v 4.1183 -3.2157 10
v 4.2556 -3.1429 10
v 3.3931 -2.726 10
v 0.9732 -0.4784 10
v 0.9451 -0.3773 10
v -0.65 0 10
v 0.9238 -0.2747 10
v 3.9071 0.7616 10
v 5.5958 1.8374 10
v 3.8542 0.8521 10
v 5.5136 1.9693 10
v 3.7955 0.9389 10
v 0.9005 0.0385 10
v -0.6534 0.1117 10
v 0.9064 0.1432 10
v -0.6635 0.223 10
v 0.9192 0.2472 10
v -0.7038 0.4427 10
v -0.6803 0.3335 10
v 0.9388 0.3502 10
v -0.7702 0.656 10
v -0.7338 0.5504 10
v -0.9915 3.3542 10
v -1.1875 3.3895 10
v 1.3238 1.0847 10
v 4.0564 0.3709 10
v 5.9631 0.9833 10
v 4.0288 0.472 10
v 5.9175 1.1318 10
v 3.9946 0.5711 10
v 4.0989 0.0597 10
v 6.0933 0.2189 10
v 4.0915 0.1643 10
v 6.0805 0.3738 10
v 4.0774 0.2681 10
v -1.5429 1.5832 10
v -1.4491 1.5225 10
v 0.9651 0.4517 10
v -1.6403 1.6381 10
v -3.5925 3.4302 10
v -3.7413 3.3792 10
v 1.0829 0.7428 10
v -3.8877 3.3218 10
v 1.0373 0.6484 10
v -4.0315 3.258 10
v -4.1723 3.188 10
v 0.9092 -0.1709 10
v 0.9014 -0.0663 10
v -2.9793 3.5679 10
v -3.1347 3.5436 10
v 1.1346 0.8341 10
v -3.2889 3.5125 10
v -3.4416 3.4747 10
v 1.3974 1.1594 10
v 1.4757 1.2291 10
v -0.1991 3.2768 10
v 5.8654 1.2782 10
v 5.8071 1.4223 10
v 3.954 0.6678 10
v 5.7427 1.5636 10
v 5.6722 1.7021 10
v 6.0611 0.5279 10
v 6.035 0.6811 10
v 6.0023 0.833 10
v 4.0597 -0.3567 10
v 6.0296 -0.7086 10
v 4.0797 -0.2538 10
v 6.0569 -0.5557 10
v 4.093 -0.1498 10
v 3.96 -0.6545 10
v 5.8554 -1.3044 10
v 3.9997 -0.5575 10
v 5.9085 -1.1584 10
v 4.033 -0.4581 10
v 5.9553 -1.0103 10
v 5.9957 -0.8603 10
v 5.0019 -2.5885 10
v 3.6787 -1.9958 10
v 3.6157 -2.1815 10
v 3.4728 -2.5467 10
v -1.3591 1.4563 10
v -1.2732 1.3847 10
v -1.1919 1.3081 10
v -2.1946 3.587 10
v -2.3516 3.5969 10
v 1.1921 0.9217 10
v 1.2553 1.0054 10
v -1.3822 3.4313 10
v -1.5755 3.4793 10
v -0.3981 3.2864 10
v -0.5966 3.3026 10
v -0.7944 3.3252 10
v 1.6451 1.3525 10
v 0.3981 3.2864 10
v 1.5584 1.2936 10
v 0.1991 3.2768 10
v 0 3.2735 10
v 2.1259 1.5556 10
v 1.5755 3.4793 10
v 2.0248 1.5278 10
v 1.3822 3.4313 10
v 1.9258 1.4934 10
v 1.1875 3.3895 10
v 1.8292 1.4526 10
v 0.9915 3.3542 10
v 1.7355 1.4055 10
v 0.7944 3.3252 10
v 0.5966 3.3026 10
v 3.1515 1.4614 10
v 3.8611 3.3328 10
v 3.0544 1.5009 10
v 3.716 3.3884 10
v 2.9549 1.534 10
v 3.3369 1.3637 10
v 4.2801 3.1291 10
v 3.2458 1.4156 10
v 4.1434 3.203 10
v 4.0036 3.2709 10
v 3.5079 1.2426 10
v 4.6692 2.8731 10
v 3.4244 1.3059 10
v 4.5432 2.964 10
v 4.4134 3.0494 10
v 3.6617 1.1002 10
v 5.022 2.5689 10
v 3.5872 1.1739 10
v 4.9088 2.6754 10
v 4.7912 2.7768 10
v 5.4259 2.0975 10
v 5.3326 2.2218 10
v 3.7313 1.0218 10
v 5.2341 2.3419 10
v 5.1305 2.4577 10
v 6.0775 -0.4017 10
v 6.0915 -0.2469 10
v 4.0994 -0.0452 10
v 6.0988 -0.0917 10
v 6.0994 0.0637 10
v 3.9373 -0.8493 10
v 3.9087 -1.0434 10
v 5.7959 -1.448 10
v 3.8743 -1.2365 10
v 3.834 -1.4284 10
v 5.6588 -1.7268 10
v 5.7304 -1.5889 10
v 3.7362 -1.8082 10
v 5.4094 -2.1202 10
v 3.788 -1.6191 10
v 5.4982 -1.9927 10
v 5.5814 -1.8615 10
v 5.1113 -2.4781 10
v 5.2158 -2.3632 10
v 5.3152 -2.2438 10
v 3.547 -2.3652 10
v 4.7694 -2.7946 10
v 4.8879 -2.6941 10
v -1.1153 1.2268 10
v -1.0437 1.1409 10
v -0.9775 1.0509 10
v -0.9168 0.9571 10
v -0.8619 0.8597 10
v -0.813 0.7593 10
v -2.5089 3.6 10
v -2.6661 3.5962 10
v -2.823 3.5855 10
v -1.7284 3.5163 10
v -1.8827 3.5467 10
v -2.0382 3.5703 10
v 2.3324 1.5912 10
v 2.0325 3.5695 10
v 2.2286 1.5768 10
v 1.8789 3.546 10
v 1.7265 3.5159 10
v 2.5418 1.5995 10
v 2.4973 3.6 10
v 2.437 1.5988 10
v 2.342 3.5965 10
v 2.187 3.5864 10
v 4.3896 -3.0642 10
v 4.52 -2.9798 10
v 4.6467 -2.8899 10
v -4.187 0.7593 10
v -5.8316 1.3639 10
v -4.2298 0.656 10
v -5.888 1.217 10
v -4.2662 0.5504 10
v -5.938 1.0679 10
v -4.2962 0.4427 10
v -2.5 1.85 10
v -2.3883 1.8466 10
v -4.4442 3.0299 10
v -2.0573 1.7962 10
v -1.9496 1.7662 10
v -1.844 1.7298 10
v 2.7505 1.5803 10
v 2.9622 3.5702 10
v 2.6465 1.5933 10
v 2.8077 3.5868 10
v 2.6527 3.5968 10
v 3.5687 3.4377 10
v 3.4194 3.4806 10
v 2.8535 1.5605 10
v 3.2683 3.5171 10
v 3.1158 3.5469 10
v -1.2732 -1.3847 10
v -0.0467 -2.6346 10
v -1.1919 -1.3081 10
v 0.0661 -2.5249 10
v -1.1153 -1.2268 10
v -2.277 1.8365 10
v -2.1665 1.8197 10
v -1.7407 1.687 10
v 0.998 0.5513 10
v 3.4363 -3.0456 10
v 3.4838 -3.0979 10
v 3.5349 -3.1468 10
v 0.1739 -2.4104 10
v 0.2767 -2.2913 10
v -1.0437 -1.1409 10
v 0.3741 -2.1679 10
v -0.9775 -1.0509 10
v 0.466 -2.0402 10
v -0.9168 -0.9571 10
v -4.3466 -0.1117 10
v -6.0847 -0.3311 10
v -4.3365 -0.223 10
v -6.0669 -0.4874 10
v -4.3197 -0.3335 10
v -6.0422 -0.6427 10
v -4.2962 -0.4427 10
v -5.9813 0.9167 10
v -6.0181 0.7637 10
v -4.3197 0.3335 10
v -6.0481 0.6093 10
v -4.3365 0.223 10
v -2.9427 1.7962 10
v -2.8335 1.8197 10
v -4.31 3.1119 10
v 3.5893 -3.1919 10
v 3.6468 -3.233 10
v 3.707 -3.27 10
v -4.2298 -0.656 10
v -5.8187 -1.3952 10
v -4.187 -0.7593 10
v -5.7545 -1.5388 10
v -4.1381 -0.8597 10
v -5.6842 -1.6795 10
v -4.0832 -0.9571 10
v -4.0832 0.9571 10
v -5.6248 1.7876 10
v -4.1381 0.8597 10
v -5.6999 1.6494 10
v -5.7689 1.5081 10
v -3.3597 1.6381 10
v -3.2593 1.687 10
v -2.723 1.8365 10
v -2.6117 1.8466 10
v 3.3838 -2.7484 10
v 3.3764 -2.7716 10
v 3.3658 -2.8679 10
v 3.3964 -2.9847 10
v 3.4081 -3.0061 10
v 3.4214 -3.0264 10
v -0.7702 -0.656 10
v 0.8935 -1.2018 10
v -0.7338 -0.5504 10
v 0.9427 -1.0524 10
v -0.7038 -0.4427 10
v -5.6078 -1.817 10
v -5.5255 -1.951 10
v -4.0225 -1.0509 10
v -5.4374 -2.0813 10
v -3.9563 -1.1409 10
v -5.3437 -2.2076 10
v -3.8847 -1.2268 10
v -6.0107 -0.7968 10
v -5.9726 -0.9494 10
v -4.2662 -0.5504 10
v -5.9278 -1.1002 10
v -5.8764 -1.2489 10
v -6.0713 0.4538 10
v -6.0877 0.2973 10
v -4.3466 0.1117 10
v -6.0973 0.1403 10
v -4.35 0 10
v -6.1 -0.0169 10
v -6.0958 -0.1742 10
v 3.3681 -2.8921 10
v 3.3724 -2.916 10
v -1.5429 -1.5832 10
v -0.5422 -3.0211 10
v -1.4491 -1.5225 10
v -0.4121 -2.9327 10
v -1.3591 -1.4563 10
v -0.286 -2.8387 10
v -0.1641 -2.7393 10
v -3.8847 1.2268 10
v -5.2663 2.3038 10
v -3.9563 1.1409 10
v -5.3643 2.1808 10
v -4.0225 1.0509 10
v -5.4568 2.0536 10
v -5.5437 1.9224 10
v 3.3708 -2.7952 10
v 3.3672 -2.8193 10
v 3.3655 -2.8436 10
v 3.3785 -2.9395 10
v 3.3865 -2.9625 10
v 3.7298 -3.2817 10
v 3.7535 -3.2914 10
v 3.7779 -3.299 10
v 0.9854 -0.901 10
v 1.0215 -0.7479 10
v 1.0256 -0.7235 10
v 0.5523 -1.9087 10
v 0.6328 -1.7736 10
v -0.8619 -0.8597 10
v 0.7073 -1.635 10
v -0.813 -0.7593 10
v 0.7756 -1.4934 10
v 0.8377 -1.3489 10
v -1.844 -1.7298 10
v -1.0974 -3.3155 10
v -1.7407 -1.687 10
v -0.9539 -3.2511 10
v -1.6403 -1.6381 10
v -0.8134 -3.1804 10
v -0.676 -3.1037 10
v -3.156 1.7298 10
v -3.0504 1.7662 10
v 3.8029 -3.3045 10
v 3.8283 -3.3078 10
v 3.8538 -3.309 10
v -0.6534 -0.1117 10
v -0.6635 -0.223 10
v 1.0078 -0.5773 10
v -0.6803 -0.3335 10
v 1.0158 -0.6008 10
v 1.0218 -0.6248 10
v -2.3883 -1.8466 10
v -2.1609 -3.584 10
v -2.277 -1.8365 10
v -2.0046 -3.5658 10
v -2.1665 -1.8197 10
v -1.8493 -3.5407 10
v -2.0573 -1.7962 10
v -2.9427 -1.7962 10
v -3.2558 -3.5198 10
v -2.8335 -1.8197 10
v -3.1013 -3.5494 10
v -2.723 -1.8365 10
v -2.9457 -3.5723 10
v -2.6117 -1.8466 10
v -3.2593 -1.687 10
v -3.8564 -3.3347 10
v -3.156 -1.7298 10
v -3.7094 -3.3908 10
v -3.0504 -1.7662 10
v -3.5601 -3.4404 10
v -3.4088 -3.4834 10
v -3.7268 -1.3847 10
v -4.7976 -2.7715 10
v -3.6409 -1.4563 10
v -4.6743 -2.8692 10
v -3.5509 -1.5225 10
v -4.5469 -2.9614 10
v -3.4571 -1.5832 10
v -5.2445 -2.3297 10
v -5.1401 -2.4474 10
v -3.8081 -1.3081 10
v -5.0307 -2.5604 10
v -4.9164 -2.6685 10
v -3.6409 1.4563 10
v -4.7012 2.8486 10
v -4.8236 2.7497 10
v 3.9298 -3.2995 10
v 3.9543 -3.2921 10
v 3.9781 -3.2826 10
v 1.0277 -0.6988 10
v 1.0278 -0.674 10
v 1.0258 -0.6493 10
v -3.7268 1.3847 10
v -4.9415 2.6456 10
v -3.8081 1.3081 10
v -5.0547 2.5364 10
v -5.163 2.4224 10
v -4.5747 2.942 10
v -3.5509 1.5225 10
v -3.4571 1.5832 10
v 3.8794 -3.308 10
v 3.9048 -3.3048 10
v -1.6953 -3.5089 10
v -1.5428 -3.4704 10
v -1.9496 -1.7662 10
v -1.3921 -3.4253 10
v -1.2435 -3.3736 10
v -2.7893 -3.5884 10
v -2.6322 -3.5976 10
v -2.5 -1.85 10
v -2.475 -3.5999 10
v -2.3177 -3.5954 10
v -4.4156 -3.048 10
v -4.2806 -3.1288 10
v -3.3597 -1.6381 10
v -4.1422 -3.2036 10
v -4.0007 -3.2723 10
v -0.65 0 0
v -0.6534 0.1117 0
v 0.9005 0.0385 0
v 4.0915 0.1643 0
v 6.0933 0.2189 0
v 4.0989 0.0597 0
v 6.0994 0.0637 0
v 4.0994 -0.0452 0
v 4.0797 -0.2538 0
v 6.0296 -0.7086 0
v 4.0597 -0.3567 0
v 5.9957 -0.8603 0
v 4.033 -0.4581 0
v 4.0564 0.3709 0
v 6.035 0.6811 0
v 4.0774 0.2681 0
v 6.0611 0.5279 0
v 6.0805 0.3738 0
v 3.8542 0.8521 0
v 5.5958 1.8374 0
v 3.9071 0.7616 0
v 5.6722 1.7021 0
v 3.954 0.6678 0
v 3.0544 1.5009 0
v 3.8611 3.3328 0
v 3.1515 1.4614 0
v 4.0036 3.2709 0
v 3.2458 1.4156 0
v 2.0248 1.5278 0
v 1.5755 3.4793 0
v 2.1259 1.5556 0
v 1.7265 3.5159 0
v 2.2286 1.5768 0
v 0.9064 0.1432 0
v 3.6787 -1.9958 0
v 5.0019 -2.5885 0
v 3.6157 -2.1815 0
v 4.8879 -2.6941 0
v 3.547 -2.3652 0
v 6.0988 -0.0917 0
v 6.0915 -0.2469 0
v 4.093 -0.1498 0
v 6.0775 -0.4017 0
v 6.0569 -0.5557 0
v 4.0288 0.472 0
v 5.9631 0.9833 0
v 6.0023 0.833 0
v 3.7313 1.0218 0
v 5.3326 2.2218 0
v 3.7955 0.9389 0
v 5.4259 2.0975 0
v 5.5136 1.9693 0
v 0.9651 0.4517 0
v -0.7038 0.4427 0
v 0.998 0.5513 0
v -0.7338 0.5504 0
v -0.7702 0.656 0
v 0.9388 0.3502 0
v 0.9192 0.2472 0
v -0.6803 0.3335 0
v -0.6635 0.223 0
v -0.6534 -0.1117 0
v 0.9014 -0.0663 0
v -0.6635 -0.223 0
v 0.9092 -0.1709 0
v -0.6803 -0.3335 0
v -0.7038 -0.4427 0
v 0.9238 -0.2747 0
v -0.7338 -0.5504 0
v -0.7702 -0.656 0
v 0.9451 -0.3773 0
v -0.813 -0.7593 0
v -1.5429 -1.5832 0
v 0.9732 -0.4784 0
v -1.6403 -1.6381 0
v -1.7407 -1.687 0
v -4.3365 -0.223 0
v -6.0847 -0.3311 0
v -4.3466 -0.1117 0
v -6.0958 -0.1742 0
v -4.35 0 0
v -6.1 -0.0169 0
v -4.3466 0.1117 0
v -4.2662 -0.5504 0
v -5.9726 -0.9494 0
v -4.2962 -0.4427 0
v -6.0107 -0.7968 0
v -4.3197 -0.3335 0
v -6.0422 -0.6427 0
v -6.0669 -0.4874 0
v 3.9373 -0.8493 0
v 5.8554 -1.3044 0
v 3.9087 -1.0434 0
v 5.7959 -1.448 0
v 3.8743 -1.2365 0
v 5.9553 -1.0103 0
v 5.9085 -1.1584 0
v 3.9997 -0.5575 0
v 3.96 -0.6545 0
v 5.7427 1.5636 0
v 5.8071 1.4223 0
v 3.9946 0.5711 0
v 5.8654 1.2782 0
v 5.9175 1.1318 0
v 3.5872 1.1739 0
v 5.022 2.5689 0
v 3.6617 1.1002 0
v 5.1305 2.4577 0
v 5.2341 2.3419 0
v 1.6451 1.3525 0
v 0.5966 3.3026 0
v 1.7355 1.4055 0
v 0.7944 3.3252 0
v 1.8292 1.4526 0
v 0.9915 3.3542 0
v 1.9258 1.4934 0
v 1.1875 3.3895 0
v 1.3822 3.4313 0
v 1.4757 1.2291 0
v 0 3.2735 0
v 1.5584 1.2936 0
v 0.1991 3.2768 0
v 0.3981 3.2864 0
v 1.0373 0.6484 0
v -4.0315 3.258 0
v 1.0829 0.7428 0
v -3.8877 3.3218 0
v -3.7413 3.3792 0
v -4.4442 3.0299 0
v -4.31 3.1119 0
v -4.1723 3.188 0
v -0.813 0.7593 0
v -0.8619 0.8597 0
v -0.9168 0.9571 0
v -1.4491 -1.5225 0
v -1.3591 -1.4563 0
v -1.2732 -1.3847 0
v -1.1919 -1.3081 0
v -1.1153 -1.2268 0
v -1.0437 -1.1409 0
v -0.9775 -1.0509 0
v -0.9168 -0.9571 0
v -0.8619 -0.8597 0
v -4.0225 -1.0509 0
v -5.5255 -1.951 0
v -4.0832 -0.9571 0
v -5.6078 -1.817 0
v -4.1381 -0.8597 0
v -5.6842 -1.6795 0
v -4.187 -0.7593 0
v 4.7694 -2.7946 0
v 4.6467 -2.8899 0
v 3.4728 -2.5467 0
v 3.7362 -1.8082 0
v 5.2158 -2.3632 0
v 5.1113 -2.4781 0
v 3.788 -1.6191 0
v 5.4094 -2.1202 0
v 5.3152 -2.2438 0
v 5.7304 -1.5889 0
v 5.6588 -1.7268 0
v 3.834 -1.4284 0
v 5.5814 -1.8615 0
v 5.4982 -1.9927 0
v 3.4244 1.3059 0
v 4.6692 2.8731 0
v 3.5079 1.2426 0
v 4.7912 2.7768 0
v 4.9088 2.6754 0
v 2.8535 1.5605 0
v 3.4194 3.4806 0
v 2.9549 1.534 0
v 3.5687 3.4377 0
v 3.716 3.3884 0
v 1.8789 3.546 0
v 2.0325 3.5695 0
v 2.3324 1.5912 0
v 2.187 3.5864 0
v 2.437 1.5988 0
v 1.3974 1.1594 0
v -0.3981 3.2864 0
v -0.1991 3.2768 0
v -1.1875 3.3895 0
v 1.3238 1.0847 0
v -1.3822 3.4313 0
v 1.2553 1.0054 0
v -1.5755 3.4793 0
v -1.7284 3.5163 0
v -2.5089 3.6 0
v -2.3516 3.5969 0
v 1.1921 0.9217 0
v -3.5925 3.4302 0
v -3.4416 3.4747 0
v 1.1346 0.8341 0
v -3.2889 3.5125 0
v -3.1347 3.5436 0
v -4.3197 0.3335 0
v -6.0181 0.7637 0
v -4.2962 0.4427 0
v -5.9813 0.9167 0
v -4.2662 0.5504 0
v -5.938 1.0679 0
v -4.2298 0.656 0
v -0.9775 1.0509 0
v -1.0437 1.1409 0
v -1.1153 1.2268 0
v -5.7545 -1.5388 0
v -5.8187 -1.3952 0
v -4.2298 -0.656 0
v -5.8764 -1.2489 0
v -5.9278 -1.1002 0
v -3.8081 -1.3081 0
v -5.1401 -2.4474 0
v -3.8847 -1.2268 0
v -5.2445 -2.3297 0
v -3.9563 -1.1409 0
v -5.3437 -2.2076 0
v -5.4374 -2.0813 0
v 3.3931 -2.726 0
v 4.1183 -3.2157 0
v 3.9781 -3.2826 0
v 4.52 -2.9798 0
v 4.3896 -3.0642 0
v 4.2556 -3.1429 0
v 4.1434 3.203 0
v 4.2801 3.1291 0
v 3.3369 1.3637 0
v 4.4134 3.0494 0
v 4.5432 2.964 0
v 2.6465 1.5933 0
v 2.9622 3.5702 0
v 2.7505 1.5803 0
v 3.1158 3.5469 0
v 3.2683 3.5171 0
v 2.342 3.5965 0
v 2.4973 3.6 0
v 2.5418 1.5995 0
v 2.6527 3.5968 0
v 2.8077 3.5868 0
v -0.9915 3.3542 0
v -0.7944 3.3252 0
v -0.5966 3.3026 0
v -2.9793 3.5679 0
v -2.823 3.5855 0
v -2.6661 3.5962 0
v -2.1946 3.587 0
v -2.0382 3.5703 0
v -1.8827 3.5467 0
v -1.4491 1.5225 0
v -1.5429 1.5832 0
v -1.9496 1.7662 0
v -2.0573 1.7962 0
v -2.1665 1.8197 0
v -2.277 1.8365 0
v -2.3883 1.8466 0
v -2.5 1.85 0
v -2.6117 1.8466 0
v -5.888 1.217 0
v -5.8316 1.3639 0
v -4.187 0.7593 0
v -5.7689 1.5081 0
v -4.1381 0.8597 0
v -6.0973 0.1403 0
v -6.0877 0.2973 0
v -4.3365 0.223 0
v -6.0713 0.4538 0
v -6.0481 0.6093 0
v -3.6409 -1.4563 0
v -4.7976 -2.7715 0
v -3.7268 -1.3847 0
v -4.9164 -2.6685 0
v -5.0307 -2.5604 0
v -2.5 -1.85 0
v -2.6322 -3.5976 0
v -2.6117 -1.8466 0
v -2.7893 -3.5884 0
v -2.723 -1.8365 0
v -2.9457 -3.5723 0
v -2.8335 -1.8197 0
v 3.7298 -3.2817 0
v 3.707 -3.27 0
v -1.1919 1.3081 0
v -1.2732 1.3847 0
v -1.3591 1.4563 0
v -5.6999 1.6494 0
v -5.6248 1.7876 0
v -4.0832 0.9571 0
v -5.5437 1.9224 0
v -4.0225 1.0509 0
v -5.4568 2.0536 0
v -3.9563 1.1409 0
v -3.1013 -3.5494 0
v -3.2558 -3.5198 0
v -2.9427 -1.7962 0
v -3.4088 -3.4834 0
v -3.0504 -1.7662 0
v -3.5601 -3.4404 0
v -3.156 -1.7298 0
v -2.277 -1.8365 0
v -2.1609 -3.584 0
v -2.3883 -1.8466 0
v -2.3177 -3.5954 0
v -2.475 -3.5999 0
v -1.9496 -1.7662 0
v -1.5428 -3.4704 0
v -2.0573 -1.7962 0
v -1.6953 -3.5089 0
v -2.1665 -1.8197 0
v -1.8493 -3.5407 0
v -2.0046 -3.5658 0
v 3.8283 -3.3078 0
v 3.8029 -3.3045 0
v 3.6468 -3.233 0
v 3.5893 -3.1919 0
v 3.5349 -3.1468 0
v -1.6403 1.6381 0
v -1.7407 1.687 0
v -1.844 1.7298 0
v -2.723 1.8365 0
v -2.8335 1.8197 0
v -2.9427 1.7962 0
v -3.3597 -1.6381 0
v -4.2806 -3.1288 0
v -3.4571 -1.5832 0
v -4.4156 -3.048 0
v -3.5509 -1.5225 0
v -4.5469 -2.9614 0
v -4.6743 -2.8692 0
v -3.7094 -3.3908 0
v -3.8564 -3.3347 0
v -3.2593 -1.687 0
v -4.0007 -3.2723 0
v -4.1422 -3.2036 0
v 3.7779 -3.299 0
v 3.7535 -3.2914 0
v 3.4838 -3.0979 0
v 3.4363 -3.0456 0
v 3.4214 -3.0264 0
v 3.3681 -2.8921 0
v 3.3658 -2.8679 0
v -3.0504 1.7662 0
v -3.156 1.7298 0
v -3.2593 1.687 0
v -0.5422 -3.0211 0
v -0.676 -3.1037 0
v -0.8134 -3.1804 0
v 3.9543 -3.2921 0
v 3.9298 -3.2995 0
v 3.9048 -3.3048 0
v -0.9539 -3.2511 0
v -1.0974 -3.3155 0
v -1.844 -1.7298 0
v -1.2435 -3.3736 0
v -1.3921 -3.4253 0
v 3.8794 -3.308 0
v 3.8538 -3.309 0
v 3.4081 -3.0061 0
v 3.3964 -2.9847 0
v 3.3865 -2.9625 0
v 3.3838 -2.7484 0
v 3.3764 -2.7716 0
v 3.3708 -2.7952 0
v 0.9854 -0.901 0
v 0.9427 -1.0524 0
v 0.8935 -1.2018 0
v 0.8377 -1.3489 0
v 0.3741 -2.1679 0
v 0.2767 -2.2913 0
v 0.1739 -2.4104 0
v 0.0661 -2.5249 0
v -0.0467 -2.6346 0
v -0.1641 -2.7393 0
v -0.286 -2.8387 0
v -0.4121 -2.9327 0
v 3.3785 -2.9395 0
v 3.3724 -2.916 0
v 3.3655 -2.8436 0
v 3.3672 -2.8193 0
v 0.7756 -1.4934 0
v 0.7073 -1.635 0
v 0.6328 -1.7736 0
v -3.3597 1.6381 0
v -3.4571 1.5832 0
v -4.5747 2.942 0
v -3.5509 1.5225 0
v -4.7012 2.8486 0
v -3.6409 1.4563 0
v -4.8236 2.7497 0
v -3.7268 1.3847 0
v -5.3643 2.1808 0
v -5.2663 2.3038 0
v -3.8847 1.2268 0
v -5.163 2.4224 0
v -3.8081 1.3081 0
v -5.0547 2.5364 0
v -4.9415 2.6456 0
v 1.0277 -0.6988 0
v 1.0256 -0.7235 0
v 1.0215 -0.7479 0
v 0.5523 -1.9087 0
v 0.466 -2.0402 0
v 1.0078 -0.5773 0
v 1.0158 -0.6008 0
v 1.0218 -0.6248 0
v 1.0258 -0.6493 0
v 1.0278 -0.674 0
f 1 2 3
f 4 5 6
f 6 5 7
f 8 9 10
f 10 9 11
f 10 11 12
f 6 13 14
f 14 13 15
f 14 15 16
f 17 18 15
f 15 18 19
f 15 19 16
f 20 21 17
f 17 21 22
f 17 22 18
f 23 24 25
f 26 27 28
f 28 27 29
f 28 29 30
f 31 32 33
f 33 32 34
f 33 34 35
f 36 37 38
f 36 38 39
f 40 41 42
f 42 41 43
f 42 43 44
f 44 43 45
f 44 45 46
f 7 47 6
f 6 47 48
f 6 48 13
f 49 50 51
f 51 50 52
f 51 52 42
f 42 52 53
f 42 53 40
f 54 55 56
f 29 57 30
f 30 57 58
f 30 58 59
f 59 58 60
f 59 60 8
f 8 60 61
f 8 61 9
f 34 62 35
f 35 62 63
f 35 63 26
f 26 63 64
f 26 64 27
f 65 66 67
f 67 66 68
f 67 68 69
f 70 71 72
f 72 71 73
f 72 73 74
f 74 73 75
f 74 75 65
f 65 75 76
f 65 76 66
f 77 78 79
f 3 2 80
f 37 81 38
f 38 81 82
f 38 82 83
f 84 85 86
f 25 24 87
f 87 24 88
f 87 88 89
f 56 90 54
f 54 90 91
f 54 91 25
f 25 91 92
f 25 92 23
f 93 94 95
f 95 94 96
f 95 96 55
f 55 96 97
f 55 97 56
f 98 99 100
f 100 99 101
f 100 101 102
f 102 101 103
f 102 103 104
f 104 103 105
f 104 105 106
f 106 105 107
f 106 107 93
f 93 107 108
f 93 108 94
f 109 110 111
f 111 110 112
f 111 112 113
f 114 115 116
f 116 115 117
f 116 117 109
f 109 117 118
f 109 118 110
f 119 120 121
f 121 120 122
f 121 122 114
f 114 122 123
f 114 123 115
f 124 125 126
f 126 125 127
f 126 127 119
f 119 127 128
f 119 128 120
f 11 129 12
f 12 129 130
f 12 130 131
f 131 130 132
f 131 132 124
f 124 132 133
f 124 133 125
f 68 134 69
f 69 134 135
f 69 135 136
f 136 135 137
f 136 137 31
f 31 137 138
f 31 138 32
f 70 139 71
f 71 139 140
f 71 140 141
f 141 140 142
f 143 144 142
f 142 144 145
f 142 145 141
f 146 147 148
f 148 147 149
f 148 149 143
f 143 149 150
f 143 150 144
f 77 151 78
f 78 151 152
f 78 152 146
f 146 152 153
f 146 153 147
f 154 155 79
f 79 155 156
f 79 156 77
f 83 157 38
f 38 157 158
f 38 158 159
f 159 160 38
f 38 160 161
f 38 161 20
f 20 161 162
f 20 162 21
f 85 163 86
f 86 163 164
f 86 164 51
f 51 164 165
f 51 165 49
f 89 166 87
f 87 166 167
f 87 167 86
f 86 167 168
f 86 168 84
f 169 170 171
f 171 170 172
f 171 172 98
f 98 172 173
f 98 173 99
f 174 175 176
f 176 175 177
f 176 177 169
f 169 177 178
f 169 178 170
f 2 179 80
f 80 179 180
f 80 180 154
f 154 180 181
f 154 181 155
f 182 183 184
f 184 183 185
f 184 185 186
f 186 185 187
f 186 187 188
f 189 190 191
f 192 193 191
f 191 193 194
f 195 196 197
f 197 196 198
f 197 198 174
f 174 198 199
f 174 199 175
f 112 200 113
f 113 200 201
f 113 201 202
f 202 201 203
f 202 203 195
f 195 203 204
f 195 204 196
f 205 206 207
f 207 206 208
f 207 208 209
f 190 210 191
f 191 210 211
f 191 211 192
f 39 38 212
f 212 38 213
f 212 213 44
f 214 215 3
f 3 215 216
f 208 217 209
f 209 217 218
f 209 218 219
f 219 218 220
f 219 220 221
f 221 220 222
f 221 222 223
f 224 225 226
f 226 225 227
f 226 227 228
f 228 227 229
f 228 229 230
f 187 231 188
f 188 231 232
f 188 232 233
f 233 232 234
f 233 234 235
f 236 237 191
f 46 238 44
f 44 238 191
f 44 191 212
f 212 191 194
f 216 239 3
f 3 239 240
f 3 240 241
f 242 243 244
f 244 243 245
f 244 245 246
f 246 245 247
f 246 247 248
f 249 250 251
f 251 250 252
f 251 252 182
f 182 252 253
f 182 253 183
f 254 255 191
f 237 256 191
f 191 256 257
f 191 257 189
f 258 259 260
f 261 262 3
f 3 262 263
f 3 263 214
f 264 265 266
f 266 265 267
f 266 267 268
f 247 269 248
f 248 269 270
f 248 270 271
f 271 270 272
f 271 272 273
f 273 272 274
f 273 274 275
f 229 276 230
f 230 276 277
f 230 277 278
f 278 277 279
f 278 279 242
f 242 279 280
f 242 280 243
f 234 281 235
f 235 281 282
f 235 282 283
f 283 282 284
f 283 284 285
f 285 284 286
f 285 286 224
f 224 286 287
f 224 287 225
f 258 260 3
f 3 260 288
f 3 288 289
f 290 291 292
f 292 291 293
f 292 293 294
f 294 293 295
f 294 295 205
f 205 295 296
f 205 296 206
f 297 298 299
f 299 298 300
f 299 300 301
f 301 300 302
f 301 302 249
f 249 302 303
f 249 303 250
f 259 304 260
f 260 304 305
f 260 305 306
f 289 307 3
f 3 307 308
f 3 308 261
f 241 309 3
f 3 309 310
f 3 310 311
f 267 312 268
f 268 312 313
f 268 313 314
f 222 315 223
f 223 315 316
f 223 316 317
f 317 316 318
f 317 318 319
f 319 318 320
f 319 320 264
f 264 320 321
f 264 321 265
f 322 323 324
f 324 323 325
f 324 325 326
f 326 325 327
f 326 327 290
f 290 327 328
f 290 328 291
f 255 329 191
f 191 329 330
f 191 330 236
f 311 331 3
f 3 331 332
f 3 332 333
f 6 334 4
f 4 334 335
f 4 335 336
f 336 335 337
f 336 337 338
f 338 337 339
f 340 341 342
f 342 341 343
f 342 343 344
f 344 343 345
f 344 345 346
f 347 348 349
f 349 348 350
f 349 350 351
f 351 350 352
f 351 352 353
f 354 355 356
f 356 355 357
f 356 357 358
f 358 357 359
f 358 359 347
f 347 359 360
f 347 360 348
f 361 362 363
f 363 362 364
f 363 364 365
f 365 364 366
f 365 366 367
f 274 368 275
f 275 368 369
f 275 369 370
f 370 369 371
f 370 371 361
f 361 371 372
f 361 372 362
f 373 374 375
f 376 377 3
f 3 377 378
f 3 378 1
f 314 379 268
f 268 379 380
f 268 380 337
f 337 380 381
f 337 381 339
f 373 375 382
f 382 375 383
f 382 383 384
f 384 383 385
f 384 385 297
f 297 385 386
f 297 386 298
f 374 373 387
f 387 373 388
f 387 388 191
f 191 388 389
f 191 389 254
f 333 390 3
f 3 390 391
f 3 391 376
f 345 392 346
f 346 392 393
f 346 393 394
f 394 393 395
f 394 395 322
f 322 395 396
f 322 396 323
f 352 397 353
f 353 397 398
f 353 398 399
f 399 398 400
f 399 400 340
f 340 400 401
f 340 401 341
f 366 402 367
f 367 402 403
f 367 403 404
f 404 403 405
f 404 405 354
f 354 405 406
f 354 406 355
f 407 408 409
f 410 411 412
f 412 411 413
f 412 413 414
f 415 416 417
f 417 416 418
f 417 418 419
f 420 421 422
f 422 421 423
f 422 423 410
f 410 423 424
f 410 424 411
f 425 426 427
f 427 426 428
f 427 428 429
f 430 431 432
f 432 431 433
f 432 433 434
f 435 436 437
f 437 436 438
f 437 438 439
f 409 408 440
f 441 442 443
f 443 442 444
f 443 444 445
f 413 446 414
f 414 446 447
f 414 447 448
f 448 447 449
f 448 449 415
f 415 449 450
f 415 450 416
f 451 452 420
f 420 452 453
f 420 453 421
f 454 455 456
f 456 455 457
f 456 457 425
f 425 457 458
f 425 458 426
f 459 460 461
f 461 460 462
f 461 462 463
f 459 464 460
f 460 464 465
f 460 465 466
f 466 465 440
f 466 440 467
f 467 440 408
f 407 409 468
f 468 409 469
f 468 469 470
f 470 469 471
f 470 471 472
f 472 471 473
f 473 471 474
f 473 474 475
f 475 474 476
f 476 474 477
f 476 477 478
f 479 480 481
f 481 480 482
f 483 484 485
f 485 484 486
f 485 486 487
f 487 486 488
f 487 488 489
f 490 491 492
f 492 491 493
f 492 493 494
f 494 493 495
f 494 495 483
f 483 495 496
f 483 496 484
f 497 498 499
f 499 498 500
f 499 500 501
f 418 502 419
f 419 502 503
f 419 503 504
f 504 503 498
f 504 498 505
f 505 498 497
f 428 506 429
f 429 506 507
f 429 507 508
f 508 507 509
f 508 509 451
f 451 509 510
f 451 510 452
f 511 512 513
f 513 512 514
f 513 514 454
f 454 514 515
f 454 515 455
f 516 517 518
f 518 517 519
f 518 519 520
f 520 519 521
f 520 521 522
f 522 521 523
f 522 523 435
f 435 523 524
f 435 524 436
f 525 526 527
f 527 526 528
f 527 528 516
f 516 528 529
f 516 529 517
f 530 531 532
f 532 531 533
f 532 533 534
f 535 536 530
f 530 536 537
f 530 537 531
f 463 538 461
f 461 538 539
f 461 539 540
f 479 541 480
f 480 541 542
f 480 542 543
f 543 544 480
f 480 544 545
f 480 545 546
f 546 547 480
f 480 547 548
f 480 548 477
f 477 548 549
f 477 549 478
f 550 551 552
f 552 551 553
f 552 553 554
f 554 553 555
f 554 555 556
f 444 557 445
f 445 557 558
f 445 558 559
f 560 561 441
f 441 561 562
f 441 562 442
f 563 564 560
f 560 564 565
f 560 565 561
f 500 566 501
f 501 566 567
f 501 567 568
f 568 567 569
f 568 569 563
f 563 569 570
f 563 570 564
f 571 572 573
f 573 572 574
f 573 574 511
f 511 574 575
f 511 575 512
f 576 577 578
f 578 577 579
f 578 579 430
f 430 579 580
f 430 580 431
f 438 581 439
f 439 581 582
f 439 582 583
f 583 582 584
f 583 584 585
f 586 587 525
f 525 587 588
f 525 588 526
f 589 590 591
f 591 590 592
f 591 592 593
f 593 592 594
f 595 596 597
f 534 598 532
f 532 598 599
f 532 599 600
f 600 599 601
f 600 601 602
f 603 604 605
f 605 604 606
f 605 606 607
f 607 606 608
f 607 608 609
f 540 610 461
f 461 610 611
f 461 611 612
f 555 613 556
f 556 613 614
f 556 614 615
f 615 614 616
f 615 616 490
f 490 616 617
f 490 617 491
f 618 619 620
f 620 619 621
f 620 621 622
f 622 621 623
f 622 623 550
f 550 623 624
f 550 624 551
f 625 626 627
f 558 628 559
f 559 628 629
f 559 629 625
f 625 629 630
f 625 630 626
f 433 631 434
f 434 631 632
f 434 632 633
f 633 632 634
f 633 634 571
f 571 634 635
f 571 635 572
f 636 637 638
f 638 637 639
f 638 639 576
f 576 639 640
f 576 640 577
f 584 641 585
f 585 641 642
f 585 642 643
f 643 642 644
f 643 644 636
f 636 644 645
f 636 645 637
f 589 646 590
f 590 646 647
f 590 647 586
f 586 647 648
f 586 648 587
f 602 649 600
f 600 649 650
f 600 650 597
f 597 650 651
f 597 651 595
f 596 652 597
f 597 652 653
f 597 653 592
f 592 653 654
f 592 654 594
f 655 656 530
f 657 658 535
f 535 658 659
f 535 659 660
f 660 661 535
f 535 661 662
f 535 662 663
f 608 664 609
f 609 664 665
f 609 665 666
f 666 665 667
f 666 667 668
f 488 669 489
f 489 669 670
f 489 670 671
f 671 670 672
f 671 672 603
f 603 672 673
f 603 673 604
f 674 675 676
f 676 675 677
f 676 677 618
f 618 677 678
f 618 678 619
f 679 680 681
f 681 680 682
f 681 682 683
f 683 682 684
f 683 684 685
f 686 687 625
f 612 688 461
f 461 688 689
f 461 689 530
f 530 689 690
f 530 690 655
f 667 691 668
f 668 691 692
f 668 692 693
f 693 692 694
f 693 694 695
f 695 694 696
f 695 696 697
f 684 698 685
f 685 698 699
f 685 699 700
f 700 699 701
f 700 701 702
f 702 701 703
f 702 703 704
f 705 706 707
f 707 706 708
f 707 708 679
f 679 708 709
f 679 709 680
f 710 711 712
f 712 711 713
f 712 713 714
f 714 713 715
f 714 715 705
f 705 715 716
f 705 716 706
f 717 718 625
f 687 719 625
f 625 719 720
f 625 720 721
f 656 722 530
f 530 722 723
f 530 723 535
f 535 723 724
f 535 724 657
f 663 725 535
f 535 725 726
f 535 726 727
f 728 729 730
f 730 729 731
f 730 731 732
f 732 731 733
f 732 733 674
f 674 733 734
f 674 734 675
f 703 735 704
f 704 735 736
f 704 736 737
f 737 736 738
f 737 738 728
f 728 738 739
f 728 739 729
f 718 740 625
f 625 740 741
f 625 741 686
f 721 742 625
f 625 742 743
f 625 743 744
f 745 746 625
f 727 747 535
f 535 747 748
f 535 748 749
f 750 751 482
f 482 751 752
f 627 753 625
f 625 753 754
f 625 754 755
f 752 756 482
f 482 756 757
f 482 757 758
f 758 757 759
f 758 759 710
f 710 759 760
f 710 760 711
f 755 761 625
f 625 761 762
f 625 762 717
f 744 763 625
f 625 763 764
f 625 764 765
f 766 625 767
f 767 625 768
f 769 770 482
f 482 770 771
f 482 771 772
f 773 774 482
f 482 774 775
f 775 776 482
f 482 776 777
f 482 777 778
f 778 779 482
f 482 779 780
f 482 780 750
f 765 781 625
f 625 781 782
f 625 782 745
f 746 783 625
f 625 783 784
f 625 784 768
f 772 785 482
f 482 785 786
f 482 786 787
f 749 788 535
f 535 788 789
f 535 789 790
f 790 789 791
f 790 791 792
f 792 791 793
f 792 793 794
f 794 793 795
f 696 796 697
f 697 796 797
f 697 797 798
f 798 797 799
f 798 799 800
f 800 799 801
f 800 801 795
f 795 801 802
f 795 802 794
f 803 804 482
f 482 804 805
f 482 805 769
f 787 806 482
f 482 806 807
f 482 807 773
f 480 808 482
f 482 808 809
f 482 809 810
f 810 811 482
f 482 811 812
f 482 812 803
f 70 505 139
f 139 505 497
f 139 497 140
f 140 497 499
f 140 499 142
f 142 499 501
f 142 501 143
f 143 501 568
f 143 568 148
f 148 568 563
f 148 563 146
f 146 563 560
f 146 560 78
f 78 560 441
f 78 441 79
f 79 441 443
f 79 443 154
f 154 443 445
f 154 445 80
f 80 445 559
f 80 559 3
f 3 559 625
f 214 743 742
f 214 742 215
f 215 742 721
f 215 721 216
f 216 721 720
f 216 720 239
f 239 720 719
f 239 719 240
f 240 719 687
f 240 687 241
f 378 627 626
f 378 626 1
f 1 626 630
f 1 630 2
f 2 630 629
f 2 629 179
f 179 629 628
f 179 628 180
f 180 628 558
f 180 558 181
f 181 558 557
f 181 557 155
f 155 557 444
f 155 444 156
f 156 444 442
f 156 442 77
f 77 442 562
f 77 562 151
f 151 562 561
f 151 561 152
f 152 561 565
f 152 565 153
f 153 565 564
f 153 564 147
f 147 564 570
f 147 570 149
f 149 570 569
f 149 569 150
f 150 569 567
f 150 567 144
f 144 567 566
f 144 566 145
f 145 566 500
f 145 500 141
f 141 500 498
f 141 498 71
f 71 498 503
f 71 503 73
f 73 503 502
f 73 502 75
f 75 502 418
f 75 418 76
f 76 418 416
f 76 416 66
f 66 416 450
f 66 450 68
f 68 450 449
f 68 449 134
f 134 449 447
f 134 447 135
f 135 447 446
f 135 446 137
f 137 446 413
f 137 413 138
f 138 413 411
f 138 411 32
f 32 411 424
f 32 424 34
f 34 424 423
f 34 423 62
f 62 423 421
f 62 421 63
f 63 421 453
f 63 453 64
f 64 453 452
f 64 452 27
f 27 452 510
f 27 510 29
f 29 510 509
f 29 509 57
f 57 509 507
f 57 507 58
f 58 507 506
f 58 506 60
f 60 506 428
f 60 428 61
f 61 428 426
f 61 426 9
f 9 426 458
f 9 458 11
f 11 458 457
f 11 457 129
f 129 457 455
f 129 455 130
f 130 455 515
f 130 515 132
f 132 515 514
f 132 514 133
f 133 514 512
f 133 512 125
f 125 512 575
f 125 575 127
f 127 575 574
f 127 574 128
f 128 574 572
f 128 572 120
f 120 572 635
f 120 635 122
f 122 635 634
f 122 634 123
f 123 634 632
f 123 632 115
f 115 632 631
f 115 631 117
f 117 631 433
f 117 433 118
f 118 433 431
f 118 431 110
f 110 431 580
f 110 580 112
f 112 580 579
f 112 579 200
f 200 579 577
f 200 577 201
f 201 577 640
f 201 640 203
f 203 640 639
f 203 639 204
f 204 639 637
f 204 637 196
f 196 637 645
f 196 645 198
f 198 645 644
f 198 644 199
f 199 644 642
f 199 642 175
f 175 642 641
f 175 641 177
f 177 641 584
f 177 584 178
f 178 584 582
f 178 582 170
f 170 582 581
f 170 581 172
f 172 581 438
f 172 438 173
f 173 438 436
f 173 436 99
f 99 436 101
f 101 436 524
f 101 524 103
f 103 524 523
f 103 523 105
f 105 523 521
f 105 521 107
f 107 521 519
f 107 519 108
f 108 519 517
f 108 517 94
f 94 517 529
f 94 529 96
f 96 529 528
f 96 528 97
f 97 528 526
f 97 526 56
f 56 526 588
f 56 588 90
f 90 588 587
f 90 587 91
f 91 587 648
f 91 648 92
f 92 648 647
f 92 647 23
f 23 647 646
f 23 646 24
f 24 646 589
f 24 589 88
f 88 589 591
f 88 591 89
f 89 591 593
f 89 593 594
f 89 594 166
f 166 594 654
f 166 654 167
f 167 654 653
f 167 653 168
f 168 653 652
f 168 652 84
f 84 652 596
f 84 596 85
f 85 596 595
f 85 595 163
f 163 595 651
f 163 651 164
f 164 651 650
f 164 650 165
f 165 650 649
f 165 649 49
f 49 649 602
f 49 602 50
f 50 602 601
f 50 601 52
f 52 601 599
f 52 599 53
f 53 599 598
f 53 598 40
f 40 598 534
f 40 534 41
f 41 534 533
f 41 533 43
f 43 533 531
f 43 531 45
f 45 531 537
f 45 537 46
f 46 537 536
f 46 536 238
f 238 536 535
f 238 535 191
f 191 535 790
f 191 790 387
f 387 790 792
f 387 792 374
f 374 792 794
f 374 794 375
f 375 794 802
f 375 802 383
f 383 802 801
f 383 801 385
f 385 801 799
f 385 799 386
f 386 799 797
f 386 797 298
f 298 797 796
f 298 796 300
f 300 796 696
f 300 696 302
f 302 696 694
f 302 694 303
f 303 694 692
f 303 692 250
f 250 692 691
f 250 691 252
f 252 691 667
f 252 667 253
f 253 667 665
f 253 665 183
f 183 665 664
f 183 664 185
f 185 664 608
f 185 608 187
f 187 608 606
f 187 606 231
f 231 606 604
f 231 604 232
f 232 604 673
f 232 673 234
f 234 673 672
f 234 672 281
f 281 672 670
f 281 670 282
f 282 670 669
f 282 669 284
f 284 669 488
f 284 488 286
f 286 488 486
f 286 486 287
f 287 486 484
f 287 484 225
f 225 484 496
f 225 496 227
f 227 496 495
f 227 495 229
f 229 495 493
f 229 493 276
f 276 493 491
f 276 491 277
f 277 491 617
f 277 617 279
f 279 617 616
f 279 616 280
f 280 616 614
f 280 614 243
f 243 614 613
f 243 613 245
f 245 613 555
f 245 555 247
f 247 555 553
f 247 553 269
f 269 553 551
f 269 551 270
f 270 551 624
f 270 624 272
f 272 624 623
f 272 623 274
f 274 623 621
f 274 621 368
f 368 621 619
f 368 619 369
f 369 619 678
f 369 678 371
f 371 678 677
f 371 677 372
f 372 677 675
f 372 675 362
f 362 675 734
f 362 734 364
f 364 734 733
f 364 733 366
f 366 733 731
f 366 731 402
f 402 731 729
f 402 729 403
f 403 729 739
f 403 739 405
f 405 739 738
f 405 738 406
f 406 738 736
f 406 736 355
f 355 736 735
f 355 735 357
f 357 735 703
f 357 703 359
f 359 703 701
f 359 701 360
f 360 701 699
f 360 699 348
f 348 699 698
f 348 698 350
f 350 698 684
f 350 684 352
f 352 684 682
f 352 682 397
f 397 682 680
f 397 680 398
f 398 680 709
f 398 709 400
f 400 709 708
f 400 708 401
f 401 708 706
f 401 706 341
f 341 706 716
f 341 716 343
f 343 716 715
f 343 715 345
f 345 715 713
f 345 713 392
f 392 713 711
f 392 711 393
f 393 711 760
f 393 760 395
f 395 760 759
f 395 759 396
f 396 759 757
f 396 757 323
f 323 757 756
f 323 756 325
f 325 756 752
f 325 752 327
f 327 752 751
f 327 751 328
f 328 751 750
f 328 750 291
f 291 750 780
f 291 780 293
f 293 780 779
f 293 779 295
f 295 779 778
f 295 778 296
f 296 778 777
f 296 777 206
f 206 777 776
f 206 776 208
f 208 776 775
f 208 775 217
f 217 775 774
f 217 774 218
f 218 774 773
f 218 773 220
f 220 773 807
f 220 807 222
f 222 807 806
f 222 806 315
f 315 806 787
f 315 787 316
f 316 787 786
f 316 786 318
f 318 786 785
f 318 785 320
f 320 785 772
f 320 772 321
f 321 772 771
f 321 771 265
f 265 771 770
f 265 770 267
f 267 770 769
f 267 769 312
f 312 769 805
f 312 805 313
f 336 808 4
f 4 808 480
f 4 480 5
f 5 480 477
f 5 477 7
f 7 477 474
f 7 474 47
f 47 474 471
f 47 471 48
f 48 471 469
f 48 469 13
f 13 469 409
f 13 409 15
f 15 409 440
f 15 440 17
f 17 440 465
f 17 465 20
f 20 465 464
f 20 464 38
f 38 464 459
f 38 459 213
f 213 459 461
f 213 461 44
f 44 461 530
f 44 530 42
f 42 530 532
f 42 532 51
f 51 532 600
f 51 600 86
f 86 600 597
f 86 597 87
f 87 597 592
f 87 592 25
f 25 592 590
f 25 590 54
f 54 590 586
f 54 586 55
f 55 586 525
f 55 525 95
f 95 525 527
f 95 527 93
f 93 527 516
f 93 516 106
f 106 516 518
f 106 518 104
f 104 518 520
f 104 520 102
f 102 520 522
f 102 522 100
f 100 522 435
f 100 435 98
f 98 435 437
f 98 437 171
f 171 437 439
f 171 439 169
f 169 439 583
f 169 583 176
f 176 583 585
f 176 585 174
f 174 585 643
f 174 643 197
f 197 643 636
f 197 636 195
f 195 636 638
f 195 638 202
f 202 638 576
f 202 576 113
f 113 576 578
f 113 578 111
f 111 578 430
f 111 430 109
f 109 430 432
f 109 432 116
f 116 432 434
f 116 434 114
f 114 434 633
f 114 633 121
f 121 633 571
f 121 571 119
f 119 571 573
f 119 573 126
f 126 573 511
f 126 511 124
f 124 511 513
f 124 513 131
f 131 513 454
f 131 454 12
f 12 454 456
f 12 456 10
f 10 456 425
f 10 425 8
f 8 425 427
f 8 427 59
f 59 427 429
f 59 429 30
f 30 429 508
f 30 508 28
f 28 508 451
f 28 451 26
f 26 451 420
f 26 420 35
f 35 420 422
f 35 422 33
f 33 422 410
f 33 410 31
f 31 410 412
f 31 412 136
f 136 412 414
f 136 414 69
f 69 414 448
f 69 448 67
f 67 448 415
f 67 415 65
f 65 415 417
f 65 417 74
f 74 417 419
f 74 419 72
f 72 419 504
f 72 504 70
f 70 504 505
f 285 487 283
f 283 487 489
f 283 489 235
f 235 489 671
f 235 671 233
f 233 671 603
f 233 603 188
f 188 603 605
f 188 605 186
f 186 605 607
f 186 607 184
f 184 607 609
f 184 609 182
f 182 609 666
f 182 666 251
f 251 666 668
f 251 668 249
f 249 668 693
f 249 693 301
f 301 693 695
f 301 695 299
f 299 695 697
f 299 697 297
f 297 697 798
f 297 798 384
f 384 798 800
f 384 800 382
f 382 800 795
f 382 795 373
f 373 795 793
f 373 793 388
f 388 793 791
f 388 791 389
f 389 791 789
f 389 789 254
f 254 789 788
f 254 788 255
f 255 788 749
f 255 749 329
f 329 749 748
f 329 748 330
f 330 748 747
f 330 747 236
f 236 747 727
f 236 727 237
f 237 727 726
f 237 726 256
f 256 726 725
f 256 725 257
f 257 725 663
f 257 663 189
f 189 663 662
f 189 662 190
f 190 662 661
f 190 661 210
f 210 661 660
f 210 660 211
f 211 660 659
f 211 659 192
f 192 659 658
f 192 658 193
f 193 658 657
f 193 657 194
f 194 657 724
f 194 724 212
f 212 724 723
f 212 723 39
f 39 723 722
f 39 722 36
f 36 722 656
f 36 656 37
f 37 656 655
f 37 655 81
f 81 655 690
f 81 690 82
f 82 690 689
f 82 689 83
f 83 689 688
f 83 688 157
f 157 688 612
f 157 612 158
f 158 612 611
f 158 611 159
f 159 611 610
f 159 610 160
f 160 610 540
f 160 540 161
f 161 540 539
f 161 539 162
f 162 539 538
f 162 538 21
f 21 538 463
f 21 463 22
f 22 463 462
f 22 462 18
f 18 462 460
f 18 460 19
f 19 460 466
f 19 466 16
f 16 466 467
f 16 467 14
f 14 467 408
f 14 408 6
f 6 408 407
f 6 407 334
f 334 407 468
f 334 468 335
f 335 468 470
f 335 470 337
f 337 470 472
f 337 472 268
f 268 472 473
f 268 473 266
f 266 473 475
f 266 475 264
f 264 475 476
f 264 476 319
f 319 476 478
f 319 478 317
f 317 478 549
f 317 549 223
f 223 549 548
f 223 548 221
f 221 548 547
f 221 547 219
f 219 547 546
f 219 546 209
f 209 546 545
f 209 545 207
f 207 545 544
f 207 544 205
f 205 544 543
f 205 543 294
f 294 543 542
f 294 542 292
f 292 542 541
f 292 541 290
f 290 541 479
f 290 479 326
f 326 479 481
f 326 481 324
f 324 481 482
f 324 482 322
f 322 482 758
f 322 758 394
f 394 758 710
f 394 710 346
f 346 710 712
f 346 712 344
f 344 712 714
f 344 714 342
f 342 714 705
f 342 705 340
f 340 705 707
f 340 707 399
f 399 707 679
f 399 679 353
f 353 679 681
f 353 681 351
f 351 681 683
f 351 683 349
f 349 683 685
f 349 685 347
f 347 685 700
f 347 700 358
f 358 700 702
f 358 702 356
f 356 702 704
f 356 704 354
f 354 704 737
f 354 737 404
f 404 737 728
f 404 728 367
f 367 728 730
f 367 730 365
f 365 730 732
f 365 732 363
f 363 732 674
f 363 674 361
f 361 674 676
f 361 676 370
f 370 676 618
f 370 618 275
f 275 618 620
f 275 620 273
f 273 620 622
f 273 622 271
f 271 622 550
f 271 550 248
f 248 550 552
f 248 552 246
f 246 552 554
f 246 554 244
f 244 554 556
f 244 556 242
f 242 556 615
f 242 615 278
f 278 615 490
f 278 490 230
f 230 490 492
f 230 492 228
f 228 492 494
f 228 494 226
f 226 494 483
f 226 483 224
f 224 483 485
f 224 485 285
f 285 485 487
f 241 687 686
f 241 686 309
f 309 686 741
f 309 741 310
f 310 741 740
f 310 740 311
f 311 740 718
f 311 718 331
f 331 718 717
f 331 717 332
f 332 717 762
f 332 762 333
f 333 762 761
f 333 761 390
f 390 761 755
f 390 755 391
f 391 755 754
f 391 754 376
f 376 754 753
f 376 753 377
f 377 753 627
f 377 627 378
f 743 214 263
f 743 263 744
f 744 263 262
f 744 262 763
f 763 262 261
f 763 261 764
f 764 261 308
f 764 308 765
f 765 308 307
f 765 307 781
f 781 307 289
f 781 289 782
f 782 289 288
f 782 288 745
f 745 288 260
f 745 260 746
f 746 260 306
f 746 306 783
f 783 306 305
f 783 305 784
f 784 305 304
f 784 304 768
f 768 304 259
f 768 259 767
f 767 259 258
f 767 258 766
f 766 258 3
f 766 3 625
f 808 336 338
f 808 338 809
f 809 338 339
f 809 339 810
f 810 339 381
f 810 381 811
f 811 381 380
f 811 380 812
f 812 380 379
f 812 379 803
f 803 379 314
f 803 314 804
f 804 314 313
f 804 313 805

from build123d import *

# Parameters (mm, degrees)
SKETCH1_R           = 1.85
BOSS_EXTRUDE2_DEPTH = 10
FILLET2_R           = 0.3


with BuildPart() as part:
    # Sketch1 → Boss-Extrude2 (new body)
    with BuildSketch(Plane.XY):
        with BuildLine():
            ThreePointArc((1.575502084, 3.479267682), (0, 3.273519226), (-1.575502084, 3.479267682))
            ThreePointArc((-1.575502084, 3.479267682), (-5.542201702, -1.924839942), (1.04, -0.654522727))
            ThreePointArc((1.04, -0.654522727), (2.5, 1.6), (3.96, -0.654522727))
            ThreePointArc((3.96, -0.654522727), (3.740219574, -1.794341014), (3.320993506, -2.876809797))
            ThreePointArc((3.320993506, -2.876809797), (3.544154136, -3.154894829), (3.850693731, -3.337008607))
            ThreePointArc((3.850693731, -3.337008607), (5.914793747, 1.139817384), (1.575502084, 3.479267682))
        make_face()
        with Locations((-2.5, 0)):
            Circle(SKETCH1_R, mode=Mode.SUBTRACT)
    extrude(amount=BOSS_EXTRUDE2_DEPTH)

    # Fillet2
    fillet2_edges = [part.edges().sort_by_distance(p)[0] for p in [
        (1.04, -0.654522727, 5),
        (3.850693731, -3.337008607, 5),
        (3.320993506, -2.876809797, 5),
    ]]
    fillet(fillet2_edges, radius=FILLET2_R)


solid = part.part
